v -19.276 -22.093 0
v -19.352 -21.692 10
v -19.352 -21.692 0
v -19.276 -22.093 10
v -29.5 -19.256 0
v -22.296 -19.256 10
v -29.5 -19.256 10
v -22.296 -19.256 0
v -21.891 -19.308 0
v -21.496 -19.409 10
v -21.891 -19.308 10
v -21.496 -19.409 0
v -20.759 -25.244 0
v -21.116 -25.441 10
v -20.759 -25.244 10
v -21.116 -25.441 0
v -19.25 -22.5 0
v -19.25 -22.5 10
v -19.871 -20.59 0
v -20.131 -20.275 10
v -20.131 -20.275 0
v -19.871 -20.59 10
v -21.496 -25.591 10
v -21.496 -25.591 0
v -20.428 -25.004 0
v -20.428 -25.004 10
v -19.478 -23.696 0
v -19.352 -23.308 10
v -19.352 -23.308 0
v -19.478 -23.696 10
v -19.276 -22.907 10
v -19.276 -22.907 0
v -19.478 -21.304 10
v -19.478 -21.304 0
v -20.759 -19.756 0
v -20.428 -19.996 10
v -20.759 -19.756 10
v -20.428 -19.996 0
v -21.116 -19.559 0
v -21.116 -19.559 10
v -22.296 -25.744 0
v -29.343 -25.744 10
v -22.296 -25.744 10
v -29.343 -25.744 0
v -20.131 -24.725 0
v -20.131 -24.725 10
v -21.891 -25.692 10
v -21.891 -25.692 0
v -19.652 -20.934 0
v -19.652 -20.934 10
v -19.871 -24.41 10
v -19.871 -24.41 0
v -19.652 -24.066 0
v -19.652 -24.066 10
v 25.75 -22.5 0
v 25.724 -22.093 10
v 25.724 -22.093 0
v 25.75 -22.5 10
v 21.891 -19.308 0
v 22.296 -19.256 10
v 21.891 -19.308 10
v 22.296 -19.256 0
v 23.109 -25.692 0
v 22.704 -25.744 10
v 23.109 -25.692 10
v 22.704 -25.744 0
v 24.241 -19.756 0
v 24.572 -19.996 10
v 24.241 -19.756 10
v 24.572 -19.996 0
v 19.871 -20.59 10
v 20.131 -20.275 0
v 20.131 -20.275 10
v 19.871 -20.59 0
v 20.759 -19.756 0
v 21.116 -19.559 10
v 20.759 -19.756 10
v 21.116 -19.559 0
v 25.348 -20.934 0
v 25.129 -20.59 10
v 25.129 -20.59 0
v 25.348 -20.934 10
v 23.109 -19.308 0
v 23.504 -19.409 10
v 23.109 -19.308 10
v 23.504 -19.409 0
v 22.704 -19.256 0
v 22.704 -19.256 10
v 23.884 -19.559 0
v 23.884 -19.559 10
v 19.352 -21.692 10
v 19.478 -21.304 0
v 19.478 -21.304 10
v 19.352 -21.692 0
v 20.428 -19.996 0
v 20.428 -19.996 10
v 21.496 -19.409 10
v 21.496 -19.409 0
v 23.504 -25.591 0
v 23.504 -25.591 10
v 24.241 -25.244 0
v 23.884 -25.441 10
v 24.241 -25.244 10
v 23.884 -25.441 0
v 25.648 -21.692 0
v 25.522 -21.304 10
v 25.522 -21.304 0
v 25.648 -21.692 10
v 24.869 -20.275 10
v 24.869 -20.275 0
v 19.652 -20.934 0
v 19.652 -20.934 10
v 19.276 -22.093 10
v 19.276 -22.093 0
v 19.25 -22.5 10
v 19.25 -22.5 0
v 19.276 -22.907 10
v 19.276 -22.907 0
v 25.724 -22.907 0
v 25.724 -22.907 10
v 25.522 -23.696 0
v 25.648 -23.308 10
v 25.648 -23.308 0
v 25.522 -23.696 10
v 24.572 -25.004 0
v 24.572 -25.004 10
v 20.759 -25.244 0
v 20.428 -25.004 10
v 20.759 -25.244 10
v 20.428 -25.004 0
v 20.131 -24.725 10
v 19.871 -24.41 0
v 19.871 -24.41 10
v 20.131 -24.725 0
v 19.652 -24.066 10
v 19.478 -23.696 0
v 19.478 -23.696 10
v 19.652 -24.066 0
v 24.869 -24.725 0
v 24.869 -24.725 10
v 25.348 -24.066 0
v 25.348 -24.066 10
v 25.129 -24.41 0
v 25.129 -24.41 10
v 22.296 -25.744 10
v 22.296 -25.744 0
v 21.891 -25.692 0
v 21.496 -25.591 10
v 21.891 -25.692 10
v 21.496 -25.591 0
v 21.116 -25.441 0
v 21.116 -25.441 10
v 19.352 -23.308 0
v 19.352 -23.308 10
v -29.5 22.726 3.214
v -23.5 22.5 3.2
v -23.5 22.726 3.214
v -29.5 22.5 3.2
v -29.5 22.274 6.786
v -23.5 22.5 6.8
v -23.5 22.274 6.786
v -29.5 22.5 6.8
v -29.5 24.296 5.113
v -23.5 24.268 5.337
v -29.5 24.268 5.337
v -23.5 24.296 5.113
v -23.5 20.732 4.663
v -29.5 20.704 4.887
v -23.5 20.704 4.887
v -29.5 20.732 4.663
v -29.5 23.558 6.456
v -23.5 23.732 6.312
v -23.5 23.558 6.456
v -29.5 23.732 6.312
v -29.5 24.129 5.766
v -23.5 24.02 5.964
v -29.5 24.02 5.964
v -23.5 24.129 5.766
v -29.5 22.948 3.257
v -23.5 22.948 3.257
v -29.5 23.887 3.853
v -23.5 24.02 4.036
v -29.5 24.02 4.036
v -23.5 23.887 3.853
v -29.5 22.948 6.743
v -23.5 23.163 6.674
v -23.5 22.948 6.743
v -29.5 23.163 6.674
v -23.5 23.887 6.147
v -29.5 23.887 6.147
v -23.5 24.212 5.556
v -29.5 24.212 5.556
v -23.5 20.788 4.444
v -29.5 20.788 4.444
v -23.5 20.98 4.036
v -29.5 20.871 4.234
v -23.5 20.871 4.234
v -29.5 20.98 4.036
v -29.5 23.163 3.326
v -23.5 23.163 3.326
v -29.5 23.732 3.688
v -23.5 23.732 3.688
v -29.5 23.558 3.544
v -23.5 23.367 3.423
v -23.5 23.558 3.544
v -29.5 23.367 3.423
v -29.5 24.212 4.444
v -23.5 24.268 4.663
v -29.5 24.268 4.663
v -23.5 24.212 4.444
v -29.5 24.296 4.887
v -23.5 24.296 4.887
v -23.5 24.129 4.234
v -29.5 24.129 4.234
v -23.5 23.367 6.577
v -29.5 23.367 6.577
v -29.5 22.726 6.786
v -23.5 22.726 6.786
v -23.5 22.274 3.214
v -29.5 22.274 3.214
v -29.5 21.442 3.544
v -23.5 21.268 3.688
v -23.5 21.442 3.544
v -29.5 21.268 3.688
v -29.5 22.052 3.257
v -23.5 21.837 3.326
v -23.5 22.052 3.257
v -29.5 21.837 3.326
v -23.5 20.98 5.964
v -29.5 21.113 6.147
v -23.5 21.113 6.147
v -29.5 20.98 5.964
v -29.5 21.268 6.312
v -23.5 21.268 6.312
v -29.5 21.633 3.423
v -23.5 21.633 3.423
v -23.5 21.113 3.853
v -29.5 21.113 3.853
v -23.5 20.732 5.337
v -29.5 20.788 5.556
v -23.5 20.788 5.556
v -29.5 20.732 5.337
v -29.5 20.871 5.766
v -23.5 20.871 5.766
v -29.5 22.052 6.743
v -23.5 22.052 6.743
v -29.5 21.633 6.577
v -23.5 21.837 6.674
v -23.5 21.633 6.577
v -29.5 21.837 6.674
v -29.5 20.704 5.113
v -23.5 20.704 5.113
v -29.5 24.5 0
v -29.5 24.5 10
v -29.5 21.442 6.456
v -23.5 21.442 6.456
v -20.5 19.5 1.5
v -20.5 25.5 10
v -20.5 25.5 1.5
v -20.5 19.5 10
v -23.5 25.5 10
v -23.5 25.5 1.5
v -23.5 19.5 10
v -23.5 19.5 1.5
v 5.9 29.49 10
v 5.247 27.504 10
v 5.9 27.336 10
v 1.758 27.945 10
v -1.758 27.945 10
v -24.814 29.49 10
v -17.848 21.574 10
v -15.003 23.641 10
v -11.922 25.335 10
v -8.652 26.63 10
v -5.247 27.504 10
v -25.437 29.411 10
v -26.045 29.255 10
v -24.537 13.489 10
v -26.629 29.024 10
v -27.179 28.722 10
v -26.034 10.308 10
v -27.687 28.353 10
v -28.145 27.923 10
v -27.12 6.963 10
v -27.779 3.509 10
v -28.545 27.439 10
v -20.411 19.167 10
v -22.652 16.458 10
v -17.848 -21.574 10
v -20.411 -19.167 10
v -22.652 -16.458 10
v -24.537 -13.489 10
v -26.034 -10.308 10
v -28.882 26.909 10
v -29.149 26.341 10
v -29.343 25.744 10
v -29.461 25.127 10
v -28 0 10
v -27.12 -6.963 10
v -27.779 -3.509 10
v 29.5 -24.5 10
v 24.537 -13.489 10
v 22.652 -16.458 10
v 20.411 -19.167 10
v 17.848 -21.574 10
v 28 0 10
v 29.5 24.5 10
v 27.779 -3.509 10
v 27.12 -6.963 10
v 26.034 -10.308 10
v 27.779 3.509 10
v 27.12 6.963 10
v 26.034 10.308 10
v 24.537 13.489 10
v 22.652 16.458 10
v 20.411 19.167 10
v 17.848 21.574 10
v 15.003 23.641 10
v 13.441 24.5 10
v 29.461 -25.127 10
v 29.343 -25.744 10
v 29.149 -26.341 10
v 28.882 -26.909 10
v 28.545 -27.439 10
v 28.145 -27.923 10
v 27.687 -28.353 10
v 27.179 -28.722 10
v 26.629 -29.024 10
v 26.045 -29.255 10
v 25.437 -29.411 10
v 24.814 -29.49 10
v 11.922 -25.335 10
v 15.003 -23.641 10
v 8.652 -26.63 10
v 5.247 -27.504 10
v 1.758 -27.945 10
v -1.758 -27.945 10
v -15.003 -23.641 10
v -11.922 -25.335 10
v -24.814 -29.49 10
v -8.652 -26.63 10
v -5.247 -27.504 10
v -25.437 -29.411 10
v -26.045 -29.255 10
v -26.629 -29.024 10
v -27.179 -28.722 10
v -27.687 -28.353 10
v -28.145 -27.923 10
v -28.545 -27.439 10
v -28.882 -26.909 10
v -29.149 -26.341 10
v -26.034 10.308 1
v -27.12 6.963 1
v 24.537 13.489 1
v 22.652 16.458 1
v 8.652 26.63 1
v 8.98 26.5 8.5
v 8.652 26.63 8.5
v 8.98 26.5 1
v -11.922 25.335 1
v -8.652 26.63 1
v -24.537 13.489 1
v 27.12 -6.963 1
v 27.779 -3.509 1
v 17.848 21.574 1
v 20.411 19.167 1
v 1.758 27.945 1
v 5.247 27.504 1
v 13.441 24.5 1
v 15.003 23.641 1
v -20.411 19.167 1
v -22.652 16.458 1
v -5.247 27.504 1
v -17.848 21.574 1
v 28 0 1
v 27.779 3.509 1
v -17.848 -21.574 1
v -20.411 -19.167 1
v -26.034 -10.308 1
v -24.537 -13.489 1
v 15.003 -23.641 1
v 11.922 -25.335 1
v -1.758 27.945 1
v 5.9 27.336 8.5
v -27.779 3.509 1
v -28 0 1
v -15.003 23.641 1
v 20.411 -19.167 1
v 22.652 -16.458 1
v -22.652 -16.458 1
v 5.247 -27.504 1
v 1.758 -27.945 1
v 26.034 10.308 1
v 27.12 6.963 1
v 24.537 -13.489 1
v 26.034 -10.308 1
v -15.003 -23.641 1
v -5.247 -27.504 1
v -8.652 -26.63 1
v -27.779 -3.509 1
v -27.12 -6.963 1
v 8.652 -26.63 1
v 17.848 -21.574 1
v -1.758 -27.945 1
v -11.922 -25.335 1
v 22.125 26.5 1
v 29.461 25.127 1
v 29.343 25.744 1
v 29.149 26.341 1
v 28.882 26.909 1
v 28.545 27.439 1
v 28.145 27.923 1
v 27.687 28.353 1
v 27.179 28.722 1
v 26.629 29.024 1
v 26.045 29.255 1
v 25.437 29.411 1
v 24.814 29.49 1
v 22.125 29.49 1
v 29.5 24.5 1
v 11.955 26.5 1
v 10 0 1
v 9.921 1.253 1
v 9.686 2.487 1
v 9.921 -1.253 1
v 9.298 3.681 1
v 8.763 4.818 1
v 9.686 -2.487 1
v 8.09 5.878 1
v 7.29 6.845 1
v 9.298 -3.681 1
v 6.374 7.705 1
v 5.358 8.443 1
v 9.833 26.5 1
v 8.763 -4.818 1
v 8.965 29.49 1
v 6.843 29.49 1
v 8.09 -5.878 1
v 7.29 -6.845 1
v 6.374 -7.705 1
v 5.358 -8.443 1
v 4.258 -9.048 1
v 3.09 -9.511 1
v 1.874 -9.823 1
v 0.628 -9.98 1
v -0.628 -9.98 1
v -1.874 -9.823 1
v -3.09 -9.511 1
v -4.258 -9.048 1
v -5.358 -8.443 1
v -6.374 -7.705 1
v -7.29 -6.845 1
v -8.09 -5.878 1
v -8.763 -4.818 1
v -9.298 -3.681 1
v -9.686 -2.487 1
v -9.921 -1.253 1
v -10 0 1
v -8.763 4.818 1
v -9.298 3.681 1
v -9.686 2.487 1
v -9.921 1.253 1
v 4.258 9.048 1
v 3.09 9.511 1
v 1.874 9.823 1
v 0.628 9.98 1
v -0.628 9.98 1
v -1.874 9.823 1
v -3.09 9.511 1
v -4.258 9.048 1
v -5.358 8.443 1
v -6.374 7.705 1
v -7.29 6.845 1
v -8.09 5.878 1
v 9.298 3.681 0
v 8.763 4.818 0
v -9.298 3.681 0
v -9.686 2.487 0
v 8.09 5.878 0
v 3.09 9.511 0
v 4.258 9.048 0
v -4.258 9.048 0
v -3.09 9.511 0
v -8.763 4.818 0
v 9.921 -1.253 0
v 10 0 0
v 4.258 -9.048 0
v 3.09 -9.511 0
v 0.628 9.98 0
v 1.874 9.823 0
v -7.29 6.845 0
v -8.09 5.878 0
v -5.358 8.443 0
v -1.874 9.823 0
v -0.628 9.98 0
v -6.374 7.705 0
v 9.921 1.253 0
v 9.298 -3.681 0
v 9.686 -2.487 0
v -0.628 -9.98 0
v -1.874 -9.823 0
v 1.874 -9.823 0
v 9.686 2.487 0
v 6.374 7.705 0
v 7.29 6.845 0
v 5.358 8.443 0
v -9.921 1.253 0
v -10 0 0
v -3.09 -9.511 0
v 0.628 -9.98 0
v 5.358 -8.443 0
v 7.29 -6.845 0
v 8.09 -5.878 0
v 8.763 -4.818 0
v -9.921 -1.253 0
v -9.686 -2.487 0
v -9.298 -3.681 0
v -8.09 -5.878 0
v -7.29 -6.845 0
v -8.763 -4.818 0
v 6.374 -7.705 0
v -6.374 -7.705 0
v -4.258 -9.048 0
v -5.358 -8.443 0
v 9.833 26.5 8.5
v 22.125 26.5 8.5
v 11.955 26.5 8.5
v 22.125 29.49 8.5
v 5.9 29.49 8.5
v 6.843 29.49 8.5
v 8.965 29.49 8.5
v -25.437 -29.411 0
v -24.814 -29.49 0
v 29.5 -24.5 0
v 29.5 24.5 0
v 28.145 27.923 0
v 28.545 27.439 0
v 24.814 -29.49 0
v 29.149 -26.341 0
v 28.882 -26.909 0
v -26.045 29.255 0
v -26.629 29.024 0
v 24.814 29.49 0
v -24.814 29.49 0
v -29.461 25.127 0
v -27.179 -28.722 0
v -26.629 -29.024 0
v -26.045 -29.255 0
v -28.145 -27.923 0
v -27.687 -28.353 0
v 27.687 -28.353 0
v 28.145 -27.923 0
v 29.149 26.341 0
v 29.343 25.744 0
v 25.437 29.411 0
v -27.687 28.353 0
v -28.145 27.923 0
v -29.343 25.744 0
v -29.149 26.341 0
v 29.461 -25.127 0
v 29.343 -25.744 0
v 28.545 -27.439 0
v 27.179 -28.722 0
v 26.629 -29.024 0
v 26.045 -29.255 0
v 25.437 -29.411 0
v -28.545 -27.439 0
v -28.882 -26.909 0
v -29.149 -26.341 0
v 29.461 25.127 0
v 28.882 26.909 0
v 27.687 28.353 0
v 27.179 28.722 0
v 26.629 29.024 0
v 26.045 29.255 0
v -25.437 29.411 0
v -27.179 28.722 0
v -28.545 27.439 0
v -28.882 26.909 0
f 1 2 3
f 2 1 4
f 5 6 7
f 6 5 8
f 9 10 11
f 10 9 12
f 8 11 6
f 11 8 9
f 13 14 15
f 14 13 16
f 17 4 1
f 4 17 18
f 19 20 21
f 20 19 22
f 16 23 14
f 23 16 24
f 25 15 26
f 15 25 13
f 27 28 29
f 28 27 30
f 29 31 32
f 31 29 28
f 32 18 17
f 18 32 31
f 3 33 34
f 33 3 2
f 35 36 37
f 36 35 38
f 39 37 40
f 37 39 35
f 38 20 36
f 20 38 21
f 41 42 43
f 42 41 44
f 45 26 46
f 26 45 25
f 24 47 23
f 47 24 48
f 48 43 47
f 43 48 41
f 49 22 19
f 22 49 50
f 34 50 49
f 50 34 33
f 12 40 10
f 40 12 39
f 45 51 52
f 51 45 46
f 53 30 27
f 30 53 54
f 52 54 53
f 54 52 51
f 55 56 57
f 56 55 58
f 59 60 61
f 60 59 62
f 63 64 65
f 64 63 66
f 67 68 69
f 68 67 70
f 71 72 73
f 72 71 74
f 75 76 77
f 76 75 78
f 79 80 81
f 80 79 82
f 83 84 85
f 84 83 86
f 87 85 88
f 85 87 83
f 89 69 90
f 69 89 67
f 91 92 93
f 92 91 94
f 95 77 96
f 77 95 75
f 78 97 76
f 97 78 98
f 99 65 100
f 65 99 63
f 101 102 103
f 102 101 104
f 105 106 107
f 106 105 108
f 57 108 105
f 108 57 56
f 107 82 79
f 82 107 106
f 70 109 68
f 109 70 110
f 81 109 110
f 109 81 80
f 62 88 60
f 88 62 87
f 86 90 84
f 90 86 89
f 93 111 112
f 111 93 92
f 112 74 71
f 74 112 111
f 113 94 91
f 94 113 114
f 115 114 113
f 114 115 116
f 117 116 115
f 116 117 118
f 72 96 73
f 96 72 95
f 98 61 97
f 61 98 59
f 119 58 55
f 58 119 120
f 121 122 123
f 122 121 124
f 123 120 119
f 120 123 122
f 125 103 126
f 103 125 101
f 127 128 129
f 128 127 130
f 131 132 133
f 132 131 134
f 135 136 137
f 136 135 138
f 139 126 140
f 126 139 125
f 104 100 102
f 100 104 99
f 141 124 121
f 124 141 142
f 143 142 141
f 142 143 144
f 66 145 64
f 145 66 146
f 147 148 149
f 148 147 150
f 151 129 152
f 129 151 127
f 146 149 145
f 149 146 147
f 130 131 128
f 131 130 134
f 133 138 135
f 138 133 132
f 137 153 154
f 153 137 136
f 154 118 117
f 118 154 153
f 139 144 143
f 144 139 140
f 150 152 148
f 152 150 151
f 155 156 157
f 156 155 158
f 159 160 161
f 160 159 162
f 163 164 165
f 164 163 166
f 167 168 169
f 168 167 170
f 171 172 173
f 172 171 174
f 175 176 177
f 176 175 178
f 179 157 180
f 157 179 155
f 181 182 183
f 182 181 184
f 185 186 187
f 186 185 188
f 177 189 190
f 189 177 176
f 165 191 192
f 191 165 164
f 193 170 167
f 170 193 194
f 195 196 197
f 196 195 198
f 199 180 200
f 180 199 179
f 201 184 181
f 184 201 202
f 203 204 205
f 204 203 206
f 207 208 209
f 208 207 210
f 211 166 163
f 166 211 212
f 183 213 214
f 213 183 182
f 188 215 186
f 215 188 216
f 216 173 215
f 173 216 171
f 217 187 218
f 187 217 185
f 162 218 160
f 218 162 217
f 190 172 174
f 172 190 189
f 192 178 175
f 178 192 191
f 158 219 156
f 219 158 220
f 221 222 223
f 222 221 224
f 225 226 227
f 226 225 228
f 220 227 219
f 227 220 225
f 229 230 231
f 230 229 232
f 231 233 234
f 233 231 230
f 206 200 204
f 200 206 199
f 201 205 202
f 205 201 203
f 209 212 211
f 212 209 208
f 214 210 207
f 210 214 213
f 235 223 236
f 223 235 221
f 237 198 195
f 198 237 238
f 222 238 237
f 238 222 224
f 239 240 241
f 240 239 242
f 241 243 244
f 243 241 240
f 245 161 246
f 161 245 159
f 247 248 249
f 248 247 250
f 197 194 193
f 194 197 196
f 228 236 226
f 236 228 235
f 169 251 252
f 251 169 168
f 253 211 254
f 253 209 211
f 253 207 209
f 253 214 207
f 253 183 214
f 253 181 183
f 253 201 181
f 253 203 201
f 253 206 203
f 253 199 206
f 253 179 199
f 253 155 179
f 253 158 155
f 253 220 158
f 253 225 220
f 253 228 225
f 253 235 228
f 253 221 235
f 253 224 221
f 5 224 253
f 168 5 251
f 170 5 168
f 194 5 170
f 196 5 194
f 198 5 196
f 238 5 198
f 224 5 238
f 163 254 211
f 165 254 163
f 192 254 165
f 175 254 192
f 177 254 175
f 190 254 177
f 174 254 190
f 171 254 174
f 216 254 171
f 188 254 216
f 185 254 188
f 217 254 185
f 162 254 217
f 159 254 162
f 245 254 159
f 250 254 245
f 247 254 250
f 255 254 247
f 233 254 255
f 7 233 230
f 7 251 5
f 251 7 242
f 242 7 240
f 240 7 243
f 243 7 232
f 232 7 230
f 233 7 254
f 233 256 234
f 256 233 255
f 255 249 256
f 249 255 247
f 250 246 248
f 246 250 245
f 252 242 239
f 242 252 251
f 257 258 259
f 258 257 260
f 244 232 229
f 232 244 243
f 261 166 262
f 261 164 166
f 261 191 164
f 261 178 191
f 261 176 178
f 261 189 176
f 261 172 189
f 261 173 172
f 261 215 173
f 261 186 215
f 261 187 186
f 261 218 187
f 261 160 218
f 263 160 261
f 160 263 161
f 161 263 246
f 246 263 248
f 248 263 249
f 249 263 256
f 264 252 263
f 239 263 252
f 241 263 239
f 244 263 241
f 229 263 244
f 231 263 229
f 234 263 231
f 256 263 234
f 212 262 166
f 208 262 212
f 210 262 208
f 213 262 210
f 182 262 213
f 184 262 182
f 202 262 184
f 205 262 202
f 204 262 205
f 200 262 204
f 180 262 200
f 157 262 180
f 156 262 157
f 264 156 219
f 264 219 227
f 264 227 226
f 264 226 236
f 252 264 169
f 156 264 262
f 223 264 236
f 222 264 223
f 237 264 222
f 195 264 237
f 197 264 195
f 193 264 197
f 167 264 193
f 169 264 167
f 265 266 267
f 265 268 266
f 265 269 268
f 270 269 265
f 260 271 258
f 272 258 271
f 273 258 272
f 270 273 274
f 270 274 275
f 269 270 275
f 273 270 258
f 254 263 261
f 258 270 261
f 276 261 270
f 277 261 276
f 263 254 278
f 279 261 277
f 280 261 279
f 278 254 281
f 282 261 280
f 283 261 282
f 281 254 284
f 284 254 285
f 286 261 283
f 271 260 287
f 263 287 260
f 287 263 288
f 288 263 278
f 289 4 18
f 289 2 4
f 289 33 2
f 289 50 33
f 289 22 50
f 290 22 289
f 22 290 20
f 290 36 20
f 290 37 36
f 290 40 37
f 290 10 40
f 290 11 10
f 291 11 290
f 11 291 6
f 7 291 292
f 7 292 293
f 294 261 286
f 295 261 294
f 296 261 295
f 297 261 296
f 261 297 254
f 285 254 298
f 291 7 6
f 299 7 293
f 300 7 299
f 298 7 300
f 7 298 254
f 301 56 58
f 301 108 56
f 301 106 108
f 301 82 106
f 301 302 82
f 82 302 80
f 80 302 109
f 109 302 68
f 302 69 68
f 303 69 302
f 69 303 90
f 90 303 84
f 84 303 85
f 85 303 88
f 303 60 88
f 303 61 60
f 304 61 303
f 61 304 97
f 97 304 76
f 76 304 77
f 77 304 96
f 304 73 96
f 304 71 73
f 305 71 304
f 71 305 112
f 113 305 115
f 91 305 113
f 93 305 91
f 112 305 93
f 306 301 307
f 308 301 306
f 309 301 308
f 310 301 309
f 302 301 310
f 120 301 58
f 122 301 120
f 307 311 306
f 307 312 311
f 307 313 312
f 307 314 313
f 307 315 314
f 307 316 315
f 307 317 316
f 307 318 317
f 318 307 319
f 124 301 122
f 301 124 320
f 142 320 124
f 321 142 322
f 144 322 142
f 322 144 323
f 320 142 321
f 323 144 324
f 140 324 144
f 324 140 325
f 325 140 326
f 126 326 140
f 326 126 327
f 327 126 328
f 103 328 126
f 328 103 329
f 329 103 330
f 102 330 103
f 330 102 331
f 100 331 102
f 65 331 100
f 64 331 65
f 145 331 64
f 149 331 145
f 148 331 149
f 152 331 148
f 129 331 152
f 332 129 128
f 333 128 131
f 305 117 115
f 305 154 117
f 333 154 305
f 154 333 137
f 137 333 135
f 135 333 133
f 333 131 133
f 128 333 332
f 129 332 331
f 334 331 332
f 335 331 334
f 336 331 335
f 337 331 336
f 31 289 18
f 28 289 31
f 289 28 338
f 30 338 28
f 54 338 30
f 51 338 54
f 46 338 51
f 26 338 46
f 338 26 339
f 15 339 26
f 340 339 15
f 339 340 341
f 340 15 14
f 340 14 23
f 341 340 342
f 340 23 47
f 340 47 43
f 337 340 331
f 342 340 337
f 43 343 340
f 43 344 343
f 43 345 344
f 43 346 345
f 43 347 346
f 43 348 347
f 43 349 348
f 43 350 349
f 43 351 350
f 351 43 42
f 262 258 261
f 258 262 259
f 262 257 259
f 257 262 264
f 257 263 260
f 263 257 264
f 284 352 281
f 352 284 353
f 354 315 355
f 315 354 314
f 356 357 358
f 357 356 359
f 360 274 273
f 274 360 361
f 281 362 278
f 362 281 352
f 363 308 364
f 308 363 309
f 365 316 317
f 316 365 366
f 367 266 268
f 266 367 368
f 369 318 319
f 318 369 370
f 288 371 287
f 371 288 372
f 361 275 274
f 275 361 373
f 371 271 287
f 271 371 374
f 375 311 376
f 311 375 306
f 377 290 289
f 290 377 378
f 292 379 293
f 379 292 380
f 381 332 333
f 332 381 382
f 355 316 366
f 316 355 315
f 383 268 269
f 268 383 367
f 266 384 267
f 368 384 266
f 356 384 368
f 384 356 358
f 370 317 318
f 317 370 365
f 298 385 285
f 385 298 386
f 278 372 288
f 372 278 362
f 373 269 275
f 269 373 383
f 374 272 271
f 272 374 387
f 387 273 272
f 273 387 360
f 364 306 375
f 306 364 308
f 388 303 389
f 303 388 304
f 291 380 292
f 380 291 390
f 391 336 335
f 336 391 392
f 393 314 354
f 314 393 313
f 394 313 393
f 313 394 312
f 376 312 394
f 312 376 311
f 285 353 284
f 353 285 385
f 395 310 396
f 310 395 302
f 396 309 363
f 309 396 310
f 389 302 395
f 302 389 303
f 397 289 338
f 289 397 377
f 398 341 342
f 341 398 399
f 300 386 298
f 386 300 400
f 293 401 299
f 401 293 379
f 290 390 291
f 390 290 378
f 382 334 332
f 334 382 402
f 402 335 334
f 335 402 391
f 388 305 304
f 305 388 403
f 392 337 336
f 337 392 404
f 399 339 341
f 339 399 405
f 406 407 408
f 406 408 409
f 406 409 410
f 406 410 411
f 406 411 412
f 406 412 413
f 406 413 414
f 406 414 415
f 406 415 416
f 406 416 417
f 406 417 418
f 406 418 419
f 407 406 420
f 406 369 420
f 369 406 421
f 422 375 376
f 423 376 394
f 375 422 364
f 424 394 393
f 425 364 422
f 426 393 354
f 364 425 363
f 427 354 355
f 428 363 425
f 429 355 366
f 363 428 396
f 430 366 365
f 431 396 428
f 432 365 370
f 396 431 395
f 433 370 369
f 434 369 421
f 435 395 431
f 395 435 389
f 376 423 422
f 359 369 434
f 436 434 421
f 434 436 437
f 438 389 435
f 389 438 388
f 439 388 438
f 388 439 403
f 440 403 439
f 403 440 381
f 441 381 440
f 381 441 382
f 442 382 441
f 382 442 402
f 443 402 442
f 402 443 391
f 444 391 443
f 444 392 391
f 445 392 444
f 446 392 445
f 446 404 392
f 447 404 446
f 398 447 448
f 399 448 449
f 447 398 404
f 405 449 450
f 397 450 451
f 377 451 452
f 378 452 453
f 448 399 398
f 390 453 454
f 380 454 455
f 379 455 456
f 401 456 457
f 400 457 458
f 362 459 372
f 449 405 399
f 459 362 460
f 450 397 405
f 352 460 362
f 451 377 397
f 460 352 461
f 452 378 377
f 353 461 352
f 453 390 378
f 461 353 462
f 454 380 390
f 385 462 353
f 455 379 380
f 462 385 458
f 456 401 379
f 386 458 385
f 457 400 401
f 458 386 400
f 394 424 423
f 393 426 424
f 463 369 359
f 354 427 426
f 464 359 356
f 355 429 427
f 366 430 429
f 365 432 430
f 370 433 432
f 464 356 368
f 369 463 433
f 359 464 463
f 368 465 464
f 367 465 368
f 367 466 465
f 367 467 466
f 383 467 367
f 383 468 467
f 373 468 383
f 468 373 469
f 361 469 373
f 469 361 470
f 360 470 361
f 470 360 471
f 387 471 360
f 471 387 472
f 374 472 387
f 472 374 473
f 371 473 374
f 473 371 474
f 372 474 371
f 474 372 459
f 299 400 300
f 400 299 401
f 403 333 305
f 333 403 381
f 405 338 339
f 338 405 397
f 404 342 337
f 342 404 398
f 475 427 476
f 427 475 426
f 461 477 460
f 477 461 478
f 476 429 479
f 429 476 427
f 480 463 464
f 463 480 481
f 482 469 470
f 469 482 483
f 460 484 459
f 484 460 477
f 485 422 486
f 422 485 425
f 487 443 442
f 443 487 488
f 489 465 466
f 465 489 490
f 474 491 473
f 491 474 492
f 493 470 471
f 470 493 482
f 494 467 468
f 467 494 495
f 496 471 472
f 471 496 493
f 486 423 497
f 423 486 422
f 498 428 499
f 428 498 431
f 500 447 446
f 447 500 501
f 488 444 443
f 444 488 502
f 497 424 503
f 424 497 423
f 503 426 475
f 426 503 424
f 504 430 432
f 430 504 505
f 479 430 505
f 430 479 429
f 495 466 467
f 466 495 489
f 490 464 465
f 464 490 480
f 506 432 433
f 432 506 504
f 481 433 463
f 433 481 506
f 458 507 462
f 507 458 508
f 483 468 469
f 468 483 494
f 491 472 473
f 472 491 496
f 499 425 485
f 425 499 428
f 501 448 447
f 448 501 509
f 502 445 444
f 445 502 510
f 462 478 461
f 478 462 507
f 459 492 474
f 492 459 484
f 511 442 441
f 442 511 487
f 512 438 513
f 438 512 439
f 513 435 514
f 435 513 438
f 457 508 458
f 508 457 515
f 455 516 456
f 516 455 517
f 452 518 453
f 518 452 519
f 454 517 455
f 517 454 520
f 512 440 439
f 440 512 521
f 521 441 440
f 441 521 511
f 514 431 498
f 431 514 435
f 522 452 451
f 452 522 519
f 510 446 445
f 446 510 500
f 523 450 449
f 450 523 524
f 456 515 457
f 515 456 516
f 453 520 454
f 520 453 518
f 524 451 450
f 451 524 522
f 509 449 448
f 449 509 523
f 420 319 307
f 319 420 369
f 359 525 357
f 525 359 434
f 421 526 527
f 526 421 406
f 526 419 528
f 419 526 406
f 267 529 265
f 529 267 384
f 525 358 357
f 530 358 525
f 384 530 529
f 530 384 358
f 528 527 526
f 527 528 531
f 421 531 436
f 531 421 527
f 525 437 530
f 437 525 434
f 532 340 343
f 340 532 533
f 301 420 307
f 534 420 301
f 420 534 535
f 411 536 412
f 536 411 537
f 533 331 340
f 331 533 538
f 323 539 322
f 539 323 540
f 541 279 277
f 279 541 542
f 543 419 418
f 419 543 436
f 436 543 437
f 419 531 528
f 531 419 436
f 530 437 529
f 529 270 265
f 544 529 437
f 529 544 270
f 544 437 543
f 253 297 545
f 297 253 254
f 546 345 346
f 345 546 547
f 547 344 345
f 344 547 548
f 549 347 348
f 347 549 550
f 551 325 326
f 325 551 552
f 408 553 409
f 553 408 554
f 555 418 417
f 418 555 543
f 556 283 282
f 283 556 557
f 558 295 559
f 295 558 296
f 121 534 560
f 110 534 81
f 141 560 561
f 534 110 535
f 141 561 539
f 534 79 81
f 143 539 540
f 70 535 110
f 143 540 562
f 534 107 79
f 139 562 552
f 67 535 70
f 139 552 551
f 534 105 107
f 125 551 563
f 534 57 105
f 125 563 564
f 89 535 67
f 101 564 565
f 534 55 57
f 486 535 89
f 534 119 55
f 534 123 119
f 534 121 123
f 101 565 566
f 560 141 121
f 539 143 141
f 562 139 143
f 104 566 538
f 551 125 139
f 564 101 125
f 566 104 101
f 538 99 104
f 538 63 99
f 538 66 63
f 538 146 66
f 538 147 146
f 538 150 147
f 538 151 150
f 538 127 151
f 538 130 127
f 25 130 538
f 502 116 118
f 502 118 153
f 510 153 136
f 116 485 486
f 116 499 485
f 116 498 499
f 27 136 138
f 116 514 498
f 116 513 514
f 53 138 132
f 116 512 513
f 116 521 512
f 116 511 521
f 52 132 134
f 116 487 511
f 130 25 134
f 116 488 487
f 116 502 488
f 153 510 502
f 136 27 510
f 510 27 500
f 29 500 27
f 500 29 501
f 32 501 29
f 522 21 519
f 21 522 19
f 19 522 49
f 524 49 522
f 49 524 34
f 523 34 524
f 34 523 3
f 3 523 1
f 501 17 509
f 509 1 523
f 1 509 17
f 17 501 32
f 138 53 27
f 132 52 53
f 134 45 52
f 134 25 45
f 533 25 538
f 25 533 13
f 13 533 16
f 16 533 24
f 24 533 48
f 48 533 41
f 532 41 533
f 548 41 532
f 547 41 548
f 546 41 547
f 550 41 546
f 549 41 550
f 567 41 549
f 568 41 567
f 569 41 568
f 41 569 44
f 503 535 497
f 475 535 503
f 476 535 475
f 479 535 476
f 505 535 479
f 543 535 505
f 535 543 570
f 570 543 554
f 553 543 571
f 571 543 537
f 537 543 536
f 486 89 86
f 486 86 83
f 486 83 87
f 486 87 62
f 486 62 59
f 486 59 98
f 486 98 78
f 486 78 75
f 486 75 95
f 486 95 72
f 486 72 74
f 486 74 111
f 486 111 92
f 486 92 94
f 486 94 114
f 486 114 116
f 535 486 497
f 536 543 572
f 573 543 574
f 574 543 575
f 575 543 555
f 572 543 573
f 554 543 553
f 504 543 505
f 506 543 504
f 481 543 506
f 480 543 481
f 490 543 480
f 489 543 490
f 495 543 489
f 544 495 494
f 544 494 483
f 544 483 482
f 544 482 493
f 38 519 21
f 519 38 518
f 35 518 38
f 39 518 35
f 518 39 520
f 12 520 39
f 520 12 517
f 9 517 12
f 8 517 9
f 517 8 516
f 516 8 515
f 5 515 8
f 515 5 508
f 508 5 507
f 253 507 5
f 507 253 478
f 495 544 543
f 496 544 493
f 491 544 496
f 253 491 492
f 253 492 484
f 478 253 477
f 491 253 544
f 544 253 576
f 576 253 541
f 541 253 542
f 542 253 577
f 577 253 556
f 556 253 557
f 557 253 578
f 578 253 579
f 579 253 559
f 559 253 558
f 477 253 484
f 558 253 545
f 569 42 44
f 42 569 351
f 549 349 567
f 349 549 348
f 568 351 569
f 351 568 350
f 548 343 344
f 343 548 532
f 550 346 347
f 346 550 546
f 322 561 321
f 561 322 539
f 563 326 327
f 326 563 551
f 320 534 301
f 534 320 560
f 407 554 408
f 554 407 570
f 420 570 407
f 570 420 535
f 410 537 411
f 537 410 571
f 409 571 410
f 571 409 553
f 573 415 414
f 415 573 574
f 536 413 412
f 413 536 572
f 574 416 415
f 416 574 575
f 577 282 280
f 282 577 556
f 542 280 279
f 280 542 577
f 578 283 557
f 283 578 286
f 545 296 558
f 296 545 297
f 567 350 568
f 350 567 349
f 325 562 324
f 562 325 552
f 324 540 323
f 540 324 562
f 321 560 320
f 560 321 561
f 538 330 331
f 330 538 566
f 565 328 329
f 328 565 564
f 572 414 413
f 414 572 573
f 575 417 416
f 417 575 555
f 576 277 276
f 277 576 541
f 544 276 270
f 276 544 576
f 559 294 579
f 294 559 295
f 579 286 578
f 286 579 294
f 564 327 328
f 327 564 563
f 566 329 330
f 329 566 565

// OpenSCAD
$fn = 50;


difference() {
	union() {
		translate(v = [0, 0, 0]) {
			rotate(a = [0, 0, 0]) {
				hull() {
					translate(v = [-24.5000000000, 24.5000000000, 0]) {
						rotate(a = [0, 0, 0]) {
							translate(v = [0, 0, 0]) {
								rotate(a = [0, 0, 0]) {
									cylinder(h = 10, r = 5);
								}
							}
						}
					}
					translate(v = [24.5000000000, 24.5000000000, 0]) {
						rotate(a = [0, 0, 0]) {
							translate(v = [0, 0, 0]) {
								rotate(a = [0, 0, 0]) {
									cylinder(h = 10, r = 5);
								}
							}
						}
					}
					translate(v = [-24.5000000000, -24.5000000000, 0]) {
						rotate(a = [0, 0, 0]) {
							translate(v = [0, 0, 0]) {
								rotate(a = [0, 0, 0]) {
									cylinder(h = 10, r = 5);
								}
							}
						}
					}
					translate(v = [24.5000000000, -24.5000000000, 0]) {
						rotate(a = [0, 0, 0]) {
							translate(v = [0, 0, 0]) {
								rotate(a = [0, 0, 0]) {
									cylinder(h = 10, r = 5);
								}
							}
						}
					}
				}
			}
		}
	}
	union() {
		translate(v = [-30.0000000000, -22.5000000000, -125]) {
			rotate(a = [0, 0, 0]) {
				hull() {
					translate(v = [7.5000000000, 0, 0]) {
						rotate(a = [0, 0, 0]) {
							translate(v = [0, 0, 0]) {
								rotate(a = [0, 0, 0]) {
									cylinder(h = 250, r = 3.2500000000);
								}
							}
						}
					}
					translate(v = [-7.5000000000, 0, 0]) {
						rotate(a = [0, 0, 0]) {
							translate(v = [0, 0, 0]) {
								rotate(a = [0, 0, 0]) {
									cylinder(h = 250, r = 3.2500000000);
								}
							}
						}
					}
				}
			}
		}
		translate(v = [22.5000000000, -22.5000000000, -125.0000000000]) {
			rotate(a = [0, 0, 0]) {
				cylinder(h = 250, r = 3.2500000000);
			}
		}
		translate(v = [-29.5000000000, 22.5000000000, 5.0000000000]) {
			rotate(a = [0, 90, 0]) {
				cylinder(h = 9, r = 1.8000000000);
			}
		}
		translate(v = [-23.5000000000, 19.5000000000, 1.5000000000]) {
			rotate(a = [0, 0, 0]) {
				cube(size = [3, 6, 8.5000000000]);
			}
		}
		translate(v = [0, 0, 1.0000000000]) {
			rotate(a = [0, 0, 0]) {
				cylinder(h = 12, r = 28.0000000000);
			}
		}
		translate(v = [0, 0, -5.0000000000]) {
			rotate(a = [0, 0, 0]) {
				cylinder(h = 10, r = 10.0000000000);
			}
		}
		translate(v = [0.0000000000, 24.5000000000, 1]) {
			rotate(a = [0, 0, 0]) {
				cube(size = [29.5000000000, 2, 12]);
			}
		}
		translate(v = [22.1250000000, 24.5000000000, 1]) {
			rotate(a = [0, 0, 0]) {
				cube(size = [7.3750000000, 5, 12]);
			}
		}
		translate(v = [5.9000000000, 24.5000000000, 8.5000000000]) {
			rotate(a = [0, 0, 0]) {
				cube(size = [23.6000000000, 5, 1.5000000000]);
			}
		}
		translate(v = [6.0833333333, 30.2500000000, 1]) {
			rotate(a = [0, 0, -45]) {
				cube(size = [7.5000000000, 1.5000000000, 12]);
			}
		}
	}
}
